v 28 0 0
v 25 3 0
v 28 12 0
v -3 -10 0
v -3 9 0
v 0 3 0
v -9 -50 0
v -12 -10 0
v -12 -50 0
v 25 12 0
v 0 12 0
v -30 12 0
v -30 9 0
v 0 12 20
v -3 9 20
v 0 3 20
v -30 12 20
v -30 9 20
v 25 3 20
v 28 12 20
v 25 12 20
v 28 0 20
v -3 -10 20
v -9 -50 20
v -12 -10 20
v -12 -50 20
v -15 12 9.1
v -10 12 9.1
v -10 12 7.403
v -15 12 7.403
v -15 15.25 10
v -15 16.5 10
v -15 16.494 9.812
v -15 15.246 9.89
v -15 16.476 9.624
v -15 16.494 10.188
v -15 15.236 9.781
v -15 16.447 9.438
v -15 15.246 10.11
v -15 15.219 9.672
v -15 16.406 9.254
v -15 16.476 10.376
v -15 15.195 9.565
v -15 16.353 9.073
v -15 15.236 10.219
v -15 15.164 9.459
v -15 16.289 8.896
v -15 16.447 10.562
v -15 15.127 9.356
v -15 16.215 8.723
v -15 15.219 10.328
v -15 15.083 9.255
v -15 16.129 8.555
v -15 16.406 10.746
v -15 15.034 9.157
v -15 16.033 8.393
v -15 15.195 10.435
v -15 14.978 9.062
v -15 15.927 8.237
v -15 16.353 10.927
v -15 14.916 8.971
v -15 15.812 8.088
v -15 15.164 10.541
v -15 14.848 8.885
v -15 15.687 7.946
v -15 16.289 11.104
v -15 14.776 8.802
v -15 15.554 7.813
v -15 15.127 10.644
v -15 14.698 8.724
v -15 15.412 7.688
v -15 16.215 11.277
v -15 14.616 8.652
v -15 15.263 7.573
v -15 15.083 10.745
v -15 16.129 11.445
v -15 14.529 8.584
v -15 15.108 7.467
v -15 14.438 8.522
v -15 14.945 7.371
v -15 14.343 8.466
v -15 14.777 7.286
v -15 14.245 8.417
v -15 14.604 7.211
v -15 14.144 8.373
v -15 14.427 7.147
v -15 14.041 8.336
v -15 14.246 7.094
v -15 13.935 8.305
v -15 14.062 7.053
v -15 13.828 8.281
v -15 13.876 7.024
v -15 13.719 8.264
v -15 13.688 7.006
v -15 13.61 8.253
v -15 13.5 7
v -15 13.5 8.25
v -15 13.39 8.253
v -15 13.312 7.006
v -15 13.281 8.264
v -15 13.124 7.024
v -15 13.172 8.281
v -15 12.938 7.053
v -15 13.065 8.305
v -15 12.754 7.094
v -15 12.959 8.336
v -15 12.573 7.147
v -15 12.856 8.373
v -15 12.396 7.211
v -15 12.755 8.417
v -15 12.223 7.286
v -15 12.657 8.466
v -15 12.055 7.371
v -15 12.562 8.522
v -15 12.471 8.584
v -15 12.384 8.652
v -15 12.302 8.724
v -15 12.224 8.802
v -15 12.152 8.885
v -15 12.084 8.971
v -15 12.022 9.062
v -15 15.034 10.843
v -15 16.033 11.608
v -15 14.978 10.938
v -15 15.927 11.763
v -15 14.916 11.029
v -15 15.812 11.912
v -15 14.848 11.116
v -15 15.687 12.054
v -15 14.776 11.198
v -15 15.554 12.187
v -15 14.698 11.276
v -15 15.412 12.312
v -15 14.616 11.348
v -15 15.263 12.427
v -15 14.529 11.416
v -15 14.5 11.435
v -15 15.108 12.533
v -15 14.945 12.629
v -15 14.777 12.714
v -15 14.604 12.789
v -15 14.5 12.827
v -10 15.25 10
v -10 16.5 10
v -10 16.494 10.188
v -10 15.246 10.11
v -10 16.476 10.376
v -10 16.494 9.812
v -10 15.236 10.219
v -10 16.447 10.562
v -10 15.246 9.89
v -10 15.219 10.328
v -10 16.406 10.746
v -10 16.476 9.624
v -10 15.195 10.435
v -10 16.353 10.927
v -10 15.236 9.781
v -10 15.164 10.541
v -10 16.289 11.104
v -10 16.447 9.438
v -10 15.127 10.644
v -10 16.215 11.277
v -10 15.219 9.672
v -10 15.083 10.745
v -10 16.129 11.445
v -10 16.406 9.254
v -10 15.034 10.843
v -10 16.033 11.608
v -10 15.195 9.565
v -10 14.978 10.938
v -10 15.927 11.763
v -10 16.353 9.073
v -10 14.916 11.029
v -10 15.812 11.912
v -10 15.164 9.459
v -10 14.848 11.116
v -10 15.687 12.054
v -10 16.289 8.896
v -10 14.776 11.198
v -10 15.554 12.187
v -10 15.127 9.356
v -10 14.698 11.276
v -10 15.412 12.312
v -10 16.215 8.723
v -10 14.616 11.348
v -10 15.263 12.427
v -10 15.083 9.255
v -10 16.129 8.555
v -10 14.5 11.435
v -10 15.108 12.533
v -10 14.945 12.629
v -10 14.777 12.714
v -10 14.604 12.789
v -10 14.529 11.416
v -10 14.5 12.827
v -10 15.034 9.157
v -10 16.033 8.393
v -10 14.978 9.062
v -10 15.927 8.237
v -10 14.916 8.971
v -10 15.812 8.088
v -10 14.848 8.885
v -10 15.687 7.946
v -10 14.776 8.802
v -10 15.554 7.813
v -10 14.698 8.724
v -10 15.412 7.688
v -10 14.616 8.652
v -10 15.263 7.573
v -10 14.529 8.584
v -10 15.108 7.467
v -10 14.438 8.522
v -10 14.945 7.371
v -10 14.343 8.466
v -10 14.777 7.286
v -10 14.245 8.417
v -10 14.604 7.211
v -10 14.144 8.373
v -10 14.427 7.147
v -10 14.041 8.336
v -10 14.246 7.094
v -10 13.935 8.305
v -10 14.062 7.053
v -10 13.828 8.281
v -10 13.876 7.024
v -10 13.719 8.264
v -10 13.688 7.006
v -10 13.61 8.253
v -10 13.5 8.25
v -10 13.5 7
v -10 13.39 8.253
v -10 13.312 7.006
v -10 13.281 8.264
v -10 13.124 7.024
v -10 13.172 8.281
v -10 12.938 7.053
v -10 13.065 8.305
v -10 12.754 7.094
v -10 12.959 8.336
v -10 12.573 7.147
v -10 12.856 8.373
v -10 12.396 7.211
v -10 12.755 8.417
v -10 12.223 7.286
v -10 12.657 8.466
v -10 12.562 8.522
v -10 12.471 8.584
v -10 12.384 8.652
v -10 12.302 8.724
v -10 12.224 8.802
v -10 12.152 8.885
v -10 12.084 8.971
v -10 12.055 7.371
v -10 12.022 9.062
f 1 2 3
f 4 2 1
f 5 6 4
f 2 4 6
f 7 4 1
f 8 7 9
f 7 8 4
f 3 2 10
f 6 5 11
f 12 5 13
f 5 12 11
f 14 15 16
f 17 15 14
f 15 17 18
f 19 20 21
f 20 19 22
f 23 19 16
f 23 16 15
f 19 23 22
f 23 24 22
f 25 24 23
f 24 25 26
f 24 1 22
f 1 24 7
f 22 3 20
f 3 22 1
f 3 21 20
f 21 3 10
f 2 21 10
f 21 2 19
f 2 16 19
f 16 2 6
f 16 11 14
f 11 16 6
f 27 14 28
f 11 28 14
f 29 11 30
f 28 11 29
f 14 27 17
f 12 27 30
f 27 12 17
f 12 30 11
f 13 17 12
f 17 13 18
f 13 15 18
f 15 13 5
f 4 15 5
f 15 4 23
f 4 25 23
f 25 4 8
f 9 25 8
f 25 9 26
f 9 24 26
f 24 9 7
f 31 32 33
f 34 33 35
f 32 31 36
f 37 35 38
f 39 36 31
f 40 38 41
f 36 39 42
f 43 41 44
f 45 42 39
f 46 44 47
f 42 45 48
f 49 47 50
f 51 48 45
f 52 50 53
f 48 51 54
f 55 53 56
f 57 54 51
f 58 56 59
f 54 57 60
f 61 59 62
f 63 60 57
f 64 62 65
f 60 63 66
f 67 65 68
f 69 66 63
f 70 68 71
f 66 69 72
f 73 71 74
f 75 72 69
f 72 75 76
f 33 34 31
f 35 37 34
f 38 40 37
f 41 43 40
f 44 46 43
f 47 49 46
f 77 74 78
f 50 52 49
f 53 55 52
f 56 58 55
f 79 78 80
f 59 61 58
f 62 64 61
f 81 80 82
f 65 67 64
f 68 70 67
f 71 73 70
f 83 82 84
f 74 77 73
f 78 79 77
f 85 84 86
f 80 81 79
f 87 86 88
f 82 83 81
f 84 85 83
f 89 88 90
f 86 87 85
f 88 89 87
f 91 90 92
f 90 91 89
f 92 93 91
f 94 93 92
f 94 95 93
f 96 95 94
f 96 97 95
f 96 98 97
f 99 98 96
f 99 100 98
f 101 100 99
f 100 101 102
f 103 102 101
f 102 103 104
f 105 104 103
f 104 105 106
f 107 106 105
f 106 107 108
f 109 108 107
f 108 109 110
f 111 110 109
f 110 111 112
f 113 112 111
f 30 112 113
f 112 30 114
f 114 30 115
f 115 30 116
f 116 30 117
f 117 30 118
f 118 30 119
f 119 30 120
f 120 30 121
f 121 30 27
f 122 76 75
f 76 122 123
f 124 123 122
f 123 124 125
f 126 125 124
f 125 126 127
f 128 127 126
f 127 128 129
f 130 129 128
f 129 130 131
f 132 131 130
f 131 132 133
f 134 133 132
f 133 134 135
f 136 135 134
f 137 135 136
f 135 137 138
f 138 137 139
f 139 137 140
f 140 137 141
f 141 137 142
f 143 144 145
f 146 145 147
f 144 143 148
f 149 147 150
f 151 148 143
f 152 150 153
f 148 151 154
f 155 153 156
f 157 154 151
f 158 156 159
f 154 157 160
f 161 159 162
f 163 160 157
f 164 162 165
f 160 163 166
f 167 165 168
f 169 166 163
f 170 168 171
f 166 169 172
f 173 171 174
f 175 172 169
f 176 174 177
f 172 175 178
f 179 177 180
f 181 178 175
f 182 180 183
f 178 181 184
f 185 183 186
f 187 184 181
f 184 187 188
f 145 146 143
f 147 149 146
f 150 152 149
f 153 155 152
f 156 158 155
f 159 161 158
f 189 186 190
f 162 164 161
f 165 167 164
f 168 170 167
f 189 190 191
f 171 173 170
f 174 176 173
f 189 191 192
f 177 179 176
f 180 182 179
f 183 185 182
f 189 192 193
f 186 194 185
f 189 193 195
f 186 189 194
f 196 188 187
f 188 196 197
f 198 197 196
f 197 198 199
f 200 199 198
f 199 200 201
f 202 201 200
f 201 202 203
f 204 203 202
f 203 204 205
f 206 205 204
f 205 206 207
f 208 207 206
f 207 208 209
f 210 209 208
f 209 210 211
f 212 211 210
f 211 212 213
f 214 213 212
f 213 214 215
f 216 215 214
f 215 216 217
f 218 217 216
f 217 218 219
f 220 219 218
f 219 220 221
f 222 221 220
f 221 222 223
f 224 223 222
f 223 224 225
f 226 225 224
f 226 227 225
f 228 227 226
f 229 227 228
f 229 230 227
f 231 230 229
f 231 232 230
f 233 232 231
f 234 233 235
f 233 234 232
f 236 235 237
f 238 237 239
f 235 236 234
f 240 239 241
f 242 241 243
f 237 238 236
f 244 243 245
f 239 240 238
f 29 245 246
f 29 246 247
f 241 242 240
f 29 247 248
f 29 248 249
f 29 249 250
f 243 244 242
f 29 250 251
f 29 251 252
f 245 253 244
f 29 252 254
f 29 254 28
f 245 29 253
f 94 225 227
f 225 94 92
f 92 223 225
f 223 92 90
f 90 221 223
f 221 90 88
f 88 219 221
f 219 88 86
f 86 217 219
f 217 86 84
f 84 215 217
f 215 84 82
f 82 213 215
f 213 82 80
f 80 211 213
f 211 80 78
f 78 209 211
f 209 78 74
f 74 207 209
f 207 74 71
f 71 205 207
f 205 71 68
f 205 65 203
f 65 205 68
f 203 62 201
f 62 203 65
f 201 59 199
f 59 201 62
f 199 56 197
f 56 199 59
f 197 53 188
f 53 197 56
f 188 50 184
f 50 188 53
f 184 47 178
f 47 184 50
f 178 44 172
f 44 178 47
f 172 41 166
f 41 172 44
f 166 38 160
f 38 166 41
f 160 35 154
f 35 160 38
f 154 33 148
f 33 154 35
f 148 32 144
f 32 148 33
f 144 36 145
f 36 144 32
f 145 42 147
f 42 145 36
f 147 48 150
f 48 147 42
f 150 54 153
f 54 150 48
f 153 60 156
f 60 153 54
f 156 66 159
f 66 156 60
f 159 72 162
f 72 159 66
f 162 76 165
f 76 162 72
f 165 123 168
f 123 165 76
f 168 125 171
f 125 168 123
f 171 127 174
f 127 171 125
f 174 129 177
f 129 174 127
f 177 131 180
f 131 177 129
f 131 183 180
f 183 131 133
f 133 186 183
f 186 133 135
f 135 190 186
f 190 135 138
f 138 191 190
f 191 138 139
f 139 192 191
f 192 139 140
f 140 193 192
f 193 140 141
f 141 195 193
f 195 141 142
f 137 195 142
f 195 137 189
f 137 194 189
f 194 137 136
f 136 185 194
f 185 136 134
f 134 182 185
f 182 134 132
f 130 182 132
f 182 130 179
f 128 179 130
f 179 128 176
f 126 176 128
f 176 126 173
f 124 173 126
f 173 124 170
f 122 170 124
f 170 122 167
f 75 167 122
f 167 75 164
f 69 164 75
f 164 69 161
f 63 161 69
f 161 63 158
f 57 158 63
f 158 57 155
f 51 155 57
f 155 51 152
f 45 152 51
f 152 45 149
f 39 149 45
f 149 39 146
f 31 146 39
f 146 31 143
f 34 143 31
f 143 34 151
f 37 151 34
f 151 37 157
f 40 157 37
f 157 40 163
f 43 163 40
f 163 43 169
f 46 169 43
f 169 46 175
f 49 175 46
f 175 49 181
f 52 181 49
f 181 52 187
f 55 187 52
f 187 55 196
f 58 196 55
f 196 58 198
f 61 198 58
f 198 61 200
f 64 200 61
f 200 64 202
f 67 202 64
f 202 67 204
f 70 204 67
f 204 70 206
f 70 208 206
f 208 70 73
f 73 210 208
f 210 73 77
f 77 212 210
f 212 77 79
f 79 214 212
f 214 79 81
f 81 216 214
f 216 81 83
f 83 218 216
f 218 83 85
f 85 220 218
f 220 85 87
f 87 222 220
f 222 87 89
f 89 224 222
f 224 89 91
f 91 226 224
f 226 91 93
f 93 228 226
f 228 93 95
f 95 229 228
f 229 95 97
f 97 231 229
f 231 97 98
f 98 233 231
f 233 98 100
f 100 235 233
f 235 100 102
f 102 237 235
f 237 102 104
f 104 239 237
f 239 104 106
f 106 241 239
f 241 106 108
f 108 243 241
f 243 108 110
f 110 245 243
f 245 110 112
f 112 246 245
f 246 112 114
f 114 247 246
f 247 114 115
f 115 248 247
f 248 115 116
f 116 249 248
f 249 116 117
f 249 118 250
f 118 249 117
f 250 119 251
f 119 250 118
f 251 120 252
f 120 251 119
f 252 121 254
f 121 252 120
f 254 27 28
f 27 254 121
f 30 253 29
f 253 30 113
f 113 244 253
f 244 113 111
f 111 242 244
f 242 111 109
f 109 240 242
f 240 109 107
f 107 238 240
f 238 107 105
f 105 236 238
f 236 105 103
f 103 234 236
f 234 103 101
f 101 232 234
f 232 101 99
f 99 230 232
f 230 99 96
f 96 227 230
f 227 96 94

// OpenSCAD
resulution = 100;

stand_thikness = 3;
stand_width = 20;
stand_depth = 30;

headphone_widht = 25;
headphone_heigth = 9;

table_width = 22;
table_stand_height = 50;
table_plate_support_insert = 12;
table_plate_support_height = 40;

cable_diameter = 3.5;
cable_holder_diameter = 6;


//HeadPhoneHolder();
HeadPhoneHolder();

module HeadPhoneHolder(){
    linear_extrude(height = stand_width){
        HeadPhoneHolderSideView();
    }
    
    translate([-15, 13.5, (stand_width ) /2])
        rotate([0,90,0]){
            CableHolder();
        }
}

module HeadPhoneHolderSideView(){
    // Auflage
    square([headphone_widht, stand_thikness], false);
    // Bügel
    translate([headphone_widht, 0, 0])
        square([stand_thikness, headphone_heigth + stand_thikness], false);
    
    // TischKantenstütze
    translate([-stand_thikness, -table_width + headphone_heigth + stand_thikness, 0])
        square([stand_thikness, table_width], false);
    
    // Table Plate Top
    translate([-stand_depth, headphone_heigth, 0])
        square([stand_depth, stand_thikness], false);
    
    // Table Plate Bottom
    translate([-table_plate_support_insert, - table_width + headphone_heigth, 0])
        square([table_plate_support_insert, stand_thikness], false);
    
    // Table Plate Support
    translate([-table_plate_support_insert, - table_width + headphone_heigth -table_plate_support_height + stand_thikness, 0])
        square([stand_thikness, table_plate_support_height], false);
        
    // Stabalize
    color("red")
    polygon(points=[
        [0,0],
        [0,- table_width + headphone_heigth],
        [-table_plate_support_insert + stand_thikness, - table_width + headphone_heigth],
        [-table_plate_support_insert + stand_thikness, -table_plate_support_height - table_width + headphone_heigth + stand_thikness],
        [headphone_widht + stand_thikness, 0]]);
}

module CableHolder(){
    linear_extrude(height = 5){
        CableHolderSideView();
    }
}

module CableHolderSideView(){
    rotate([0,0,90])
    difference(){
        circle(cable_holder_diameter/2,  $fn=resulution);
        circle(cable_diameter/2, $fn=resulution);
        translate([-2, 0, 0])
            square(3, 3);
    }
}
